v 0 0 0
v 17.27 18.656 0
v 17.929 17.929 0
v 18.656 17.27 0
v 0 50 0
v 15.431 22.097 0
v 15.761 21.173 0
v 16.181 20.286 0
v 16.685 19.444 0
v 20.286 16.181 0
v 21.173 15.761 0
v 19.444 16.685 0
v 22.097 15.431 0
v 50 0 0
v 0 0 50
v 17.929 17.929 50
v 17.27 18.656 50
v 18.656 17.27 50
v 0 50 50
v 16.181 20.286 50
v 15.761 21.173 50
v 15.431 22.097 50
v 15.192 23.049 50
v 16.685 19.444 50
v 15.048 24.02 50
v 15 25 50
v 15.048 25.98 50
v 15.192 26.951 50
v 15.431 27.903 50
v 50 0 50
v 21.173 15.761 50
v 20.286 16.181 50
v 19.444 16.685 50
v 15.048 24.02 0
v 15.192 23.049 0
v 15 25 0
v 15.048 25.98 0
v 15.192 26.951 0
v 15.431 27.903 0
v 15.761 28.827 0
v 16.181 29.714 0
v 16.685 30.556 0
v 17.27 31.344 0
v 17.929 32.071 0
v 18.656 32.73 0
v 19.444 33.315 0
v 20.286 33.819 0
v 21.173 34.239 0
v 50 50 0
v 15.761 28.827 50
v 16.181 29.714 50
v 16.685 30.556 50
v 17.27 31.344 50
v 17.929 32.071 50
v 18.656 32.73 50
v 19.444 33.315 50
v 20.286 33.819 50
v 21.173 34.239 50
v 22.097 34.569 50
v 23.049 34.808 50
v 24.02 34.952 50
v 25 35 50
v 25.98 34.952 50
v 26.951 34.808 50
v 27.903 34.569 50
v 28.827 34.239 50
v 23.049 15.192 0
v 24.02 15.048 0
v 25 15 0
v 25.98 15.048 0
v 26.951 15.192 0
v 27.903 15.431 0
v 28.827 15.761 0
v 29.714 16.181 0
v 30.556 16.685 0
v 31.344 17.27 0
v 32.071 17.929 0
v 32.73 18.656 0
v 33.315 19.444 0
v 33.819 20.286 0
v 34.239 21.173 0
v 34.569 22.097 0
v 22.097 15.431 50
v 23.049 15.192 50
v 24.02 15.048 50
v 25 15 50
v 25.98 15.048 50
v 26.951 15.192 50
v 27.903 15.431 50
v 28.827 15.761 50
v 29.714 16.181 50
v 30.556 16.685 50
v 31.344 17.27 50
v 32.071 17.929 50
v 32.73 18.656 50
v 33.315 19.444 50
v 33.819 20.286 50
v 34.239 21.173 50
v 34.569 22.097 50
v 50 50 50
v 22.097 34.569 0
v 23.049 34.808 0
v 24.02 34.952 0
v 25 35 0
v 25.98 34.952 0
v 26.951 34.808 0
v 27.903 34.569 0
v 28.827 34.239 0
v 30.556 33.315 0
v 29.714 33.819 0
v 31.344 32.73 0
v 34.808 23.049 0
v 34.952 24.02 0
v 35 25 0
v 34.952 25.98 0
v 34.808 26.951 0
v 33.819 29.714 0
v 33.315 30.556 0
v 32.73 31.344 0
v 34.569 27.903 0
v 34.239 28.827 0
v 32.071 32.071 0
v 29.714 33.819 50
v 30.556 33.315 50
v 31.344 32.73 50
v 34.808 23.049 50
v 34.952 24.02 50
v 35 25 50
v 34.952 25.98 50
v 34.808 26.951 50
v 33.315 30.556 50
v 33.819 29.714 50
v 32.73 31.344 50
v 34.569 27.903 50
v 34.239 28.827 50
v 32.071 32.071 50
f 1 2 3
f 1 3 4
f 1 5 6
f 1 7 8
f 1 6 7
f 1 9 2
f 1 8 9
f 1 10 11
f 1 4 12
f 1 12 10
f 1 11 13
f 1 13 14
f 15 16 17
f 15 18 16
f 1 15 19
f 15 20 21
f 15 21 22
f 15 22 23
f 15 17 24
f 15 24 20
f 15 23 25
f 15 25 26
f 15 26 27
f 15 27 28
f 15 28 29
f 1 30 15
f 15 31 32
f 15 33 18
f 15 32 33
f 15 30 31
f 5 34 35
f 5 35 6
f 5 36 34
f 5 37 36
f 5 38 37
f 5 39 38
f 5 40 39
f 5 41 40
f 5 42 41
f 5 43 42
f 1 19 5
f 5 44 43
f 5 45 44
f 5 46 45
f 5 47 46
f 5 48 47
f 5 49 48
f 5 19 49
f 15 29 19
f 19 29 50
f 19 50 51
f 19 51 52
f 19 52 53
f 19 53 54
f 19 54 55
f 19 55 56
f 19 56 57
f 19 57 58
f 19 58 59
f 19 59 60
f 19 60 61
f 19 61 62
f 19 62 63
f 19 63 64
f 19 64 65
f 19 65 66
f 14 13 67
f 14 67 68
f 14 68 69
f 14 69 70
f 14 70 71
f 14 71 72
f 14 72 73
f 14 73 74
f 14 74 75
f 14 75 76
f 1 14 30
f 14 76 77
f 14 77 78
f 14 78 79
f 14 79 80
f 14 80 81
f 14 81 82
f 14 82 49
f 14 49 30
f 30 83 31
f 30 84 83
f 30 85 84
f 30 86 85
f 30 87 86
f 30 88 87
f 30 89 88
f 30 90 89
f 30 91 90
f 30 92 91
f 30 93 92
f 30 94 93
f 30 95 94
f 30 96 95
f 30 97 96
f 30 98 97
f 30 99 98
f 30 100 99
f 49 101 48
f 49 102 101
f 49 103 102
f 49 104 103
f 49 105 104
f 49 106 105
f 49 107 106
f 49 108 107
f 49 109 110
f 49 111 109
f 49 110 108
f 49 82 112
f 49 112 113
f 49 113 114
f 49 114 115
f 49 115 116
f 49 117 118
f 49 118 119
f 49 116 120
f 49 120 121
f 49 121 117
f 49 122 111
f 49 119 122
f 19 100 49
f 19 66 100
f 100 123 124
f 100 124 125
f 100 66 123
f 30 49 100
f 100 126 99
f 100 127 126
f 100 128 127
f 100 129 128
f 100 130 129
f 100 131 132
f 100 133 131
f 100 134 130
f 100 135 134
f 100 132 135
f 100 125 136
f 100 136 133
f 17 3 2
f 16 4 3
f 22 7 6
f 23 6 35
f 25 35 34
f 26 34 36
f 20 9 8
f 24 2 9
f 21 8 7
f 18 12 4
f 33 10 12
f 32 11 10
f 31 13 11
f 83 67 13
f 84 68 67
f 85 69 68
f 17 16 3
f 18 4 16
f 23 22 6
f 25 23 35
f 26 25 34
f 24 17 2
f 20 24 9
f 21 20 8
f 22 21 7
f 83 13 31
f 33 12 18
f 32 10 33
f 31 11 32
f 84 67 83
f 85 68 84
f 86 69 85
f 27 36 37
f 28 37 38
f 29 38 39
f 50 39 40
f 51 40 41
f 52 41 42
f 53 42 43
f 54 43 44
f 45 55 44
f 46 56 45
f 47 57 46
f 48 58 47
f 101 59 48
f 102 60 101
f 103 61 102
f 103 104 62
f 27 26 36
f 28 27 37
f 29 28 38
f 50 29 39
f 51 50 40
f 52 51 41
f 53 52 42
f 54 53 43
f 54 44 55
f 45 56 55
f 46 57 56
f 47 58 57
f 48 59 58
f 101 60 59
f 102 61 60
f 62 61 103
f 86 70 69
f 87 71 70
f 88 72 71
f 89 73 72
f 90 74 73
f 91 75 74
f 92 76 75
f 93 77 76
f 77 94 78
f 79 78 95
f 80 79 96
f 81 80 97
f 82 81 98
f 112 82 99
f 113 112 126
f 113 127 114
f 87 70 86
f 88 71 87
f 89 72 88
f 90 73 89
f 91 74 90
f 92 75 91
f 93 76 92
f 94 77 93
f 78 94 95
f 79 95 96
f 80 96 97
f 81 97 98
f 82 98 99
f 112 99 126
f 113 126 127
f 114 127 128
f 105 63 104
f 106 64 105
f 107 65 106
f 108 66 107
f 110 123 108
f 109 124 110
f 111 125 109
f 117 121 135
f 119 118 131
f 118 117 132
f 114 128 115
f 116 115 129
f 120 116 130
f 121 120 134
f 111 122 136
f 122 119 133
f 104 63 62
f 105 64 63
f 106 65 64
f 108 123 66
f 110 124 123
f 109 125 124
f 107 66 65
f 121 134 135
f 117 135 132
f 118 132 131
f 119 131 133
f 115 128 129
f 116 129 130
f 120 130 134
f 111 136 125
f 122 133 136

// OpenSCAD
difference() {
    cube([50, 50, 50]);
    translate([25, 25, -5])
        cylinder(h = 60, d = 20, $fn = 64);
}
